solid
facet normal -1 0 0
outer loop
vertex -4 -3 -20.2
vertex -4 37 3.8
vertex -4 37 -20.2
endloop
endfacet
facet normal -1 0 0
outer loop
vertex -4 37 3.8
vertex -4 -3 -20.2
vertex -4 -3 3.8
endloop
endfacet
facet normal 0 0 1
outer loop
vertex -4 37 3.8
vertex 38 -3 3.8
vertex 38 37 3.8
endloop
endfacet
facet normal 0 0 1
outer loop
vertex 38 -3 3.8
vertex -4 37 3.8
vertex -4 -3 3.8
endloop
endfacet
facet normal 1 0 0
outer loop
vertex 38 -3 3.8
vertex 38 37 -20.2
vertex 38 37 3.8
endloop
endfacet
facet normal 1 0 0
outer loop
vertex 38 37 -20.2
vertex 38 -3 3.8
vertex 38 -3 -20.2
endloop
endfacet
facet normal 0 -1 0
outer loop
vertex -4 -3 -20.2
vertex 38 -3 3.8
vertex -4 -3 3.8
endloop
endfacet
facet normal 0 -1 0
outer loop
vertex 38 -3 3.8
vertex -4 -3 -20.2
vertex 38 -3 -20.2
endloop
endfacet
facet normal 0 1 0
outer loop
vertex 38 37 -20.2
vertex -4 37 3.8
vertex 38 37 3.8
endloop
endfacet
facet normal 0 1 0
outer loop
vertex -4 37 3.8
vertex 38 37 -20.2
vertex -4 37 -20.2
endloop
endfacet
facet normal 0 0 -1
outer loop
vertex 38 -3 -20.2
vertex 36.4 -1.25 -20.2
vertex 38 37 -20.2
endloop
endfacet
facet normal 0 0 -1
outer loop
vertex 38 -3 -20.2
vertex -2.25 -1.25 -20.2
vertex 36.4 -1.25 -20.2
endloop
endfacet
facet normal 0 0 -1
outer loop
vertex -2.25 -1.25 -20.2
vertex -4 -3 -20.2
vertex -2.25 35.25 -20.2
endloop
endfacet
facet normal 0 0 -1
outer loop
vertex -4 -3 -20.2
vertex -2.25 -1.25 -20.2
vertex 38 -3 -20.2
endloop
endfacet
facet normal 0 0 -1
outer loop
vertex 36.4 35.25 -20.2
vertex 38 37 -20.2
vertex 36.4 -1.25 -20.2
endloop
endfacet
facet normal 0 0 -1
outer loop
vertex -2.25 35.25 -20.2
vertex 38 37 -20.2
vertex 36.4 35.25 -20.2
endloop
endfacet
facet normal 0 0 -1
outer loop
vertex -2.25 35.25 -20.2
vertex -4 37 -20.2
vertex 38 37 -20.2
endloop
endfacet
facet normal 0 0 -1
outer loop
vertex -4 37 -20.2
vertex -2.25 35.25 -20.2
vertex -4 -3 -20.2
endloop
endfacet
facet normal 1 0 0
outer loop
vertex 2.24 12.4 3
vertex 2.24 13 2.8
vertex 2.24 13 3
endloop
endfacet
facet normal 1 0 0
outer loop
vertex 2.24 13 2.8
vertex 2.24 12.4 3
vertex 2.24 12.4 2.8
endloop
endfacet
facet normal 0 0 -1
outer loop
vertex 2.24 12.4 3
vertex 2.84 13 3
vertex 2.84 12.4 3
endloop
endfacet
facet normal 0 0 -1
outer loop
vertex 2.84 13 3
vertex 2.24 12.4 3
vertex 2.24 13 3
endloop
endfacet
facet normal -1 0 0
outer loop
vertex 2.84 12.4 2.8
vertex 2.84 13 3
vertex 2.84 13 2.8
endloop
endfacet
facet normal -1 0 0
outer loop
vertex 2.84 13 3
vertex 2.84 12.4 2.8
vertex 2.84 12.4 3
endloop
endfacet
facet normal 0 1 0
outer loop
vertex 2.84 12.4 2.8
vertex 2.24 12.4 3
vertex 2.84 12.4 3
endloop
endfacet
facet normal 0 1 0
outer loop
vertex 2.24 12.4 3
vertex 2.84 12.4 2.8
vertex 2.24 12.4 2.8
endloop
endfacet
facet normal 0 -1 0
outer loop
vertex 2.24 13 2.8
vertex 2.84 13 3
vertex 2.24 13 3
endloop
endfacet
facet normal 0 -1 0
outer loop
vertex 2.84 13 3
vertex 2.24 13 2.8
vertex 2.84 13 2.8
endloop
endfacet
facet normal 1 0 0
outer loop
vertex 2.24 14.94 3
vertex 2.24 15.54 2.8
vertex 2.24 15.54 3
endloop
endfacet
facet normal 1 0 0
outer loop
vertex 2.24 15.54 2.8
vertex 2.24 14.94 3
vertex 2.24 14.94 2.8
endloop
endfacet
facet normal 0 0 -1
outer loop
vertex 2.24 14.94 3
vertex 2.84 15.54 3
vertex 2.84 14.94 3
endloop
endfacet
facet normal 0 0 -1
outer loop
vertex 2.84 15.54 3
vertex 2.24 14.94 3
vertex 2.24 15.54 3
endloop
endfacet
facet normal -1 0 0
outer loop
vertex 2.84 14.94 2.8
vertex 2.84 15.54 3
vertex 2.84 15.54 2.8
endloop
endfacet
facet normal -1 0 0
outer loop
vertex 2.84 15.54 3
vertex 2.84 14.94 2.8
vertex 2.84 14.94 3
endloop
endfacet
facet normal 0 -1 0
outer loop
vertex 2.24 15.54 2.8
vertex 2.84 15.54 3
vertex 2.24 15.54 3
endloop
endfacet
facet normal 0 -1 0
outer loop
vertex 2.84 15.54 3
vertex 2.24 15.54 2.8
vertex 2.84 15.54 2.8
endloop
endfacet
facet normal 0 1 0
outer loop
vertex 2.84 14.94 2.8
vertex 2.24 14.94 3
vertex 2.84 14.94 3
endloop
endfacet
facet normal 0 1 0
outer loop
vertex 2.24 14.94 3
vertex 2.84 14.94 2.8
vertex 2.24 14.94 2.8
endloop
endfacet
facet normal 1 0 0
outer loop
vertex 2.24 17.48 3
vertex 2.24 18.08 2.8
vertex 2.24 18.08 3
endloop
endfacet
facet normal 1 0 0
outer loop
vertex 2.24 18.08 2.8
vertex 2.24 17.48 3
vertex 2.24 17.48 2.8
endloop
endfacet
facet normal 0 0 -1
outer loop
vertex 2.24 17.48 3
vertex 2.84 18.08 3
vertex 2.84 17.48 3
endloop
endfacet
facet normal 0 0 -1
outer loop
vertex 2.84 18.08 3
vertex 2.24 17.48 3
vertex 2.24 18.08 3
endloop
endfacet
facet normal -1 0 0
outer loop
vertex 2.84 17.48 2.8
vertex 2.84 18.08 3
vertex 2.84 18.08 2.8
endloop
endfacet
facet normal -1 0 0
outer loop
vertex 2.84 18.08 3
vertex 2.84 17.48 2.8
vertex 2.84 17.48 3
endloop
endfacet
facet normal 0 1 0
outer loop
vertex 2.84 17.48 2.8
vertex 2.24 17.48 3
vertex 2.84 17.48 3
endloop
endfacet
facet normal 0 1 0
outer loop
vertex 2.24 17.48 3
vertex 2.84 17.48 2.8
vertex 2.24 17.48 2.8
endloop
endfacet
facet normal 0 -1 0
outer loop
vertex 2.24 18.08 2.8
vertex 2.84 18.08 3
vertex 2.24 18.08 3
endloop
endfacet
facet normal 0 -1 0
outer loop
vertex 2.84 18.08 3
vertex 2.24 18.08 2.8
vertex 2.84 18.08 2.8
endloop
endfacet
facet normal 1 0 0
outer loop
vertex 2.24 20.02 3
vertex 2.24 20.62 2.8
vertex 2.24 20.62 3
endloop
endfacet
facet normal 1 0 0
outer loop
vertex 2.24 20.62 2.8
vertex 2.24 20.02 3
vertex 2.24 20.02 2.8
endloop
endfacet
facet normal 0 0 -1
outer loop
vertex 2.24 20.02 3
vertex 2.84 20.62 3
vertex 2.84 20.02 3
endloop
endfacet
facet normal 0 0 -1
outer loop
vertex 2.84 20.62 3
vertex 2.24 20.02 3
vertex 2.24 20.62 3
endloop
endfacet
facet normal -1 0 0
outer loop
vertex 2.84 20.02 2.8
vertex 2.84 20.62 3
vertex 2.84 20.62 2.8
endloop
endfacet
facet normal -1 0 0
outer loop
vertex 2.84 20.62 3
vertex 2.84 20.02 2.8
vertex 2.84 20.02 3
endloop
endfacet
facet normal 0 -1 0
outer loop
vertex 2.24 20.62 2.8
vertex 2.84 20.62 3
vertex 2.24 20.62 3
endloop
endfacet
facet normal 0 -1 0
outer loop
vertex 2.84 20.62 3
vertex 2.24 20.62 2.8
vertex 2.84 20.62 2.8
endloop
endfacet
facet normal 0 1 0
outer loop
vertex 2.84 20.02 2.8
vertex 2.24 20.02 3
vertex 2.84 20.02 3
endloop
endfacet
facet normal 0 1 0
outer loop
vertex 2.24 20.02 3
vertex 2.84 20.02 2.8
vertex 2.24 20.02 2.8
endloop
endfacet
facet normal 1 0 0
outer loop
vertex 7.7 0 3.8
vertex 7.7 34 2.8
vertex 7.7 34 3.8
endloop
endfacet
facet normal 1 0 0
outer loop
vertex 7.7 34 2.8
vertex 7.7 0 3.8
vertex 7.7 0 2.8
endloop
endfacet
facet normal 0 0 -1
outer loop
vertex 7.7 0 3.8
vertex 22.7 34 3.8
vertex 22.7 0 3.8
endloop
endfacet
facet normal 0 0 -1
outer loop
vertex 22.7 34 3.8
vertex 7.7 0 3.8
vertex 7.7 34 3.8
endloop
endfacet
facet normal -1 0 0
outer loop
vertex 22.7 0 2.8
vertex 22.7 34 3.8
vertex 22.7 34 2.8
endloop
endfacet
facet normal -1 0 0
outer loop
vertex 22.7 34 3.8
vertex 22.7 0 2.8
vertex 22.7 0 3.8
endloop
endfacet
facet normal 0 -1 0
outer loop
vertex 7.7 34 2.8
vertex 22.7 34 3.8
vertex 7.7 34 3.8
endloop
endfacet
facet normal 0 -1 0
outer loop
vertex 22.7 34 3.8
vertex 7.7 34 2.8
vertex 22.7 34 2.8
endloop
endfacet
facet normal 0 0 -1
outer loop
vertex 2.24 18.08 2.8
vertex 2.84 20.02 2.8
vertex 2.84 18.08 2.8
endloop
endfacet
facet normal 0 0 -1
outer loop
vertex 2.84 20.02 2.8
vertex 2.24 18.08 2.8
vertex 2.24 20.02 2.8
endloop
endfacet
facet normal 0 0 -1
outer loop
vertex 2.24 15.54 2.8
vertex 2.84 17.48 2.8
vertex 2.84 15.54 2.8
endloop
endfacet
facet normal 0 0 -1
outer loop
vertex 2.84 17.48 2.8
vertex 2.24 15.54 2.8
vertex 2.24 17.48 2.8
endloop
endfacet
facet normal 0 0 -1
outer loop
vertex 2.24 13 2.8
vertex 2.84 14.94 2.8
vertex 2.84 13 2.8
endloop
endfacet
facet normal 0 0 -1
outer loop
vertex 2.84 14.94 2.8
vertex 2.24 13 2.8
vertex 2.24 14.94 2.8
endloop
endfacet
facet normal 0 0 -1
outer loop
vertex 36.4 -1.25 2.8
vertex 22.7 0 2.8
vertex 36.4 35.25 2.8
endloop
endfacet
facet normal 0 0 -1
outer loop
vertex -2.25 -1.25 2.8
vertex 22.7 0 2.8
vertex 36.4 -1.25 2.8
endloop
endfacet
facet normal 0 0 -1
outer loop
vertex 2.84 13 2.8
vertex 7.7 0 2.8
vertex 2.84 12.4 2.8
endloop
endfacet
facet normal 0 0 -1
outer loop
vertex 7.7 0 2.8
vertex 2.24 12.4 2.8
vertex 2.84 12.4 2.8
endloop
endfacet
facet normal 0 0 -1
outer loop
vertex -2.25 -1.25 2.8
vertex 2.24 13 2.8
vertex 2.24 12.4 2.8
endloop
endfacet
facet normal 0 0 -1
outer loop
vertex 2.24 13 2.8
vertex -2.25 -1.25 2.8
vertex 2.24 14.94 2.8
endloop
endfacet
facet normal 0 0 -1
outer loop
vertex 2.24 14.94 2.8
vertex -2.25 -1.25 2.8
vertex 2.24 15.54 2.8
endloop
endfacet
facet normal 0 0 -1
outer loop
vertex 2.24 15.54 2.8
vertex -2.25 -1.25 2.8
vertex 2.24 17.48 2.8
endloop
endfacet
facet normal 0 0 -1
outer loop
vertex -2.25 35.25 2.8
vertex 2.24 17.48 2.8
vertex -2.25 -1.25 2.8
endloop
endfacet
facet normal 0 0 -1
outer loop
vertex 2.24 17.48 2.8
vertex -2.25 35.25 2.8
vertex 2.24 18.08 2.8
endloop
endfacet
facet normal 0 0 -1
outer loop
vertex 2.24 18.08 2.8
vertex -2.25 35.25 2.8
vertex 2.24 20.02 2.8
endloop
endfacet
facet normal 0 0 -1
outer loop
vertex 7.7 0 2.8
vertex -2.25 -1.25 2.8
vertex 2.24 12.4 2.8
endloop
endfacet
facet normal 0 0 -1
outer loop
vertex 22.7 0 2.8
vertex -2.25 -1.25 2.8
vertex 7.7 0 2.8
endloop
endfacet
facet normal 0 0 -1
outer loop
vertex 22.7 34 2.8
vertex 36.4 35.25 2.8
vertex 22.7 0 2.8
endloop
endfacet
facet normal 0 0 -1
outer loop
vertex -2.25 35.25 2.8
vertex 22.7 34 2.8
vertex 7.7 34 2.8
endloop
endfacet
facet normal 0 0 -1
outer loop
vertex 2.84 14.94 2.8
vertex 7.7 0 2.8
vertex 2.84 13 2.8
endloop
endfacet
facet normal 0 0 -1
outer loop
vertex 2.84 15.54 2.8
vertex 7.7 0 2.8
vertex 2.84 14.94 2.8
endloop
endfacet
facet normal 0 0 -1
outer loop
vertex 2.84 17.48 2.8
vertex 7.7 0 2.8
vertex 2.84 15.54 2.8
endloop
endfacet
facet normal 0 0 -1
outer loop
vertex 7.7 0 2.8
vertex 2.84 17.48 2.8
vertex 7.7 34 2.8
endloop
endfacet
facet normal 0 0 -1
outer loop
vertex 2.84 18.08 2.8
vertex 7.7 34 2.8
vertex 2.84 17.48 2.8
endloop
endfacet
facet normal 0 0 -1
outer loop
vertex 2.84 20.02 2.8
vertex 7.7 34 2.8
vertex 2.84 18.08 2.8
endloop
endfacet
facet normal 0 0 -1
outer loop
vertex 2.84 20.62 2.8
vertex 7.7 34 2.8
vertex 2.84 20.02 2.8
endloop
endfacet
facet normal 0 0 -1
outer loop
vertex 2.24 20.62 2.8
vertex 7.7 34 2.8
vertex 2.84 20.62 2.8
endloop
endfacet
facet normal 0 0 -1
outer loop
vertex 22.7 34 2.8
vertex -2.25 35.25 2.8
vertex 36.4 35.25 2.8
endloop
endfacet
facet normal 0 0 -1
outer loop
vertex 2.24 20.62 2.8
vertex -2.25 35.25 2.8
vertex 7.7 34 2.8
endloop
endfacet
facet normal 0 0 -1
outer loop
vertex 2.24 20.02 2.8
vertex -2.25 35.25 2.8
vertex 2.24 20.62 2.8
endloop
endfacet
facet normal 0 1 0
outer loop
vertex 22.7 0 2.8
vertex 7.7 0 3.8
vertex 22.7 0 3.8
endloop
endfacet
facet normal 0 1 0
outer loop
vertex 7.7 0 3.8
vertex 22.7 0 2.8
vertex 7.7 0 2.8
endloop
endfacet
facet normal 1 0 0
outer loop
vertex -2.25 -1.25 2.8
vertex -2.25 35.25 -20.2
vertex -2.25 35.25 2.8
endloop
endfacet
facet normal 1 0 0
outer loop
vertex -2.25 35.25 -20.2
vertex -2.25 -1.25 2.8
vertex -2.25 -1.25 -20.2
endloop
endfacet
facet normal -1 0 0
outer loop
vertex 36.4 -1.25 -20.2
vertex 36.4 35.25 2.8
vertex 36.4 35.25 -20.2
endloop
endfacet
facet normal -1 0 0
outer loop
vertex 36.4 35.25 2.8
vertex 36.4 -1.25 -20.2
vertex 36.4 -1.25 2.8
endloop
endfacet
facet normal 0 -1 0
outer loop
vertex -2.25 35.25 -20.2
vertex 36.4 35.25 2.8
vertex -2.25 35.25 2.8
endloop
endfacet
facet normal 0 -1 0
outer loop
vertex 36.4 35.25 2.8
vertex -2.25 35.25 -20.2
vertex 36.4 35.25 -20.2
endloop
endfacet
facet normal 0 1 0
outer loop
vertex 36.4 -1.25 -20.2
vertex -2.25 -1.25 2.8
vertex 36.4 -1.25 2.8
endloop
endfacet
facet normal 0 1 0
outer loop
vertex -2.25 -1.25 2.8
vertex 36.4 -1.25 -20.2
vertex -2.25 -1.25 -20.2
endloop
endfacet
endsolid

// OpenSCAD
$fn=36;
Pitch=2.54;
Pins_enabled=1;
Pins_up=0;

module Pins(Pins_number,Pitch)
   {
   translate([0,-Pitch*Pins_number/2,0])
      for(a=[0:1:Pins_number-1])
         {
         color("Goldenrod")
            translate([0,Pitch*a,-3])
               cube([0.6,0.6,10],center=true);
         color("Silver")
            translate([0,Pitch*a,-1.5])
               cylinder(r1=0,r2=1,h=1);
         color("Silver")
            translate([0,Pitch*a,0.5])
               cylinder(r1=1,r2=0,h=1);
         color("Black")
            translate([0,Pitch*a,-2])
               Component(2,2,1.25);
         }
   }

module Pins_holes(Pins_number,Pitch,Diameter)
   {
   translate([0,-Pitch*Pins_number/2,0])
      for(a=[0:1:Pins_number-1])
         {
         color("Goldenrod")
         translate([0,Pitch*a,-3])
            cylinder(r=Diameter,h=10,center=true);
         }
   }

module Pins_copper_rings(Pins_number,Pitch,Diameter)
   {
   translate([0,-Pitch*Pins_number/2,0])
      for(a=[0:1:Pins_number-1])
         {
         color("Goldenrod")
         translate([0,Pitch*a,-3])
            cylinder(r=Diameter,h=1.6,center=true);
         }
   }

module Component(X,Y,Z)
   {
   #hull()
      {
      translate([X/2,Y/2,0])
         sphere(r=0.25,$fn=18);
      translate([-X/2,Y/2,0])
         sphere(r=0.25,$fn=18);
      translate([X/2,-Y/2,0])
         sphere(r=0.25,$fn=18);
      translate([-X/2,-Y/2,0])
         sphere(r=0.25,$fn=18);

      translate([X/2,Y/2,Z-0.25])
         sphere(r=0.25,$fn=18);
      translate([-X/2,Y/2,Z-0.25])
         sphere(r=0.25,$fn=18);
      translate([X/2,-Y/2,Z-0.25])
         sphere(r=0.25,$fn=18);
      translate([-X/2,-Y/2,Z-0.25])
         sphere(r=0.25,$fn=18);
      }
   }

//---------------------------------------------------------------------------------------------------------------------------
//---------------------------------------------------------------------------------------------------------------------------
//---------------------------------------------------------------------------------------------------------------------------

module OLED_13_128_64_I2C(Pins_enabled,Pins_up)
  {
  translate([0,-1.252,0])
  difference()
     {
     union()
        {  
        color("Royalblue")
        translate([1.252,0.5,0])
        cube([34,35,1.5]);

        translate([Pitch,Pitch*7.5,-2.25])
           rotate([0,180,0])
              Pins_copper_rings(4,Pitch,0.75);

          color("silver")
      translate([4,3,-0.05])
        rotate([0,0,0])
          cylinder(d=3.5,h=1.6);
      color("silver")
        translate([4,33,-0.05])
          rotate([0,0,0])
            cylinder(d=3.5,h=1.6);
      color("silver")
        translate([32,3,-0.05])
          rotate([0,0,0])
            cylinder(d=3.5,h=1.6);
      color("silver")
        translate([32,33,-0.05])
          rotate([0,0,0])
            cylinder(d=3.5,h=1.6);

    color("Black")
      translate([18,18,2.5])
        rotate([0,180,90])
          Component(35,22,1);
        }

     translate([Pitch,Pitch*7.5,0.5])
        rotate([0,180,0])
           Pins_holes(4,Pitch,0.55);

//    color("white")
//     translate([18,8,2])
//        rotate([0,0,90])
//           linear_extrude(1)
//              text("OLED 1.3",size=3);
//    color("white")
//    translate([23,11,2])
//        rotate([0,0,90])
//           linear_extrude(1)
//              text("128x64",size=3);

    color("silver")
      translate([4,3,-1])
        rotate([0,0,0])
          cylinder(d=2.75,h=10);
      color("silver")
        translate([4,33,-1])
          rotate([0,0,0])
            cylinder(d=2.75,h=10);
      color("silver")
        translate([32,3,-1])
          rotate([0,0,0])
            cylinder(d=2.75,h=10);
      color("silver")
        translate([32,33,-1])
          rotate([0,0,0])
            cylinder(d=2.75,h=10);
     }

  if(Pins_enabled==1 && Pins_up==0)
    translate([Pitch,Pitch*7,1])
      rotate([0,0,0])
        Pins(4,Pitch);
  if(Pins_enabled==1 && Pins_up==1)
    translate([Pitch,Pitch*7,0.8])
      rotate([0,180,0])
        Pins(4,Pitch);

}
oled_case_z = 20;

module oled_case(){
    translate([-1,-1,0]) cube([42,40,oled_case_z]);
}

module back_frame(){
    #translate([-1,-1,0]) cube([42,40,4]);
}

module pcb(){
    translate([-2.25,0,0])
        cube([38.65,36.5,25]);
}

difference(){
    translate([-3,-2, -(oled_case_z + 12.4)/2]){
        oled_case();
        translate([0,0,-4])
            back_frame();
    }
    union(){
        OLED_13_128_64_I2C(Pins_enabled,Pins_up);
        #translate([7.7,0,2.8]) cube([15,34,1]);
        translate([0,-1.25,-22.2])pcb();
    }
}
